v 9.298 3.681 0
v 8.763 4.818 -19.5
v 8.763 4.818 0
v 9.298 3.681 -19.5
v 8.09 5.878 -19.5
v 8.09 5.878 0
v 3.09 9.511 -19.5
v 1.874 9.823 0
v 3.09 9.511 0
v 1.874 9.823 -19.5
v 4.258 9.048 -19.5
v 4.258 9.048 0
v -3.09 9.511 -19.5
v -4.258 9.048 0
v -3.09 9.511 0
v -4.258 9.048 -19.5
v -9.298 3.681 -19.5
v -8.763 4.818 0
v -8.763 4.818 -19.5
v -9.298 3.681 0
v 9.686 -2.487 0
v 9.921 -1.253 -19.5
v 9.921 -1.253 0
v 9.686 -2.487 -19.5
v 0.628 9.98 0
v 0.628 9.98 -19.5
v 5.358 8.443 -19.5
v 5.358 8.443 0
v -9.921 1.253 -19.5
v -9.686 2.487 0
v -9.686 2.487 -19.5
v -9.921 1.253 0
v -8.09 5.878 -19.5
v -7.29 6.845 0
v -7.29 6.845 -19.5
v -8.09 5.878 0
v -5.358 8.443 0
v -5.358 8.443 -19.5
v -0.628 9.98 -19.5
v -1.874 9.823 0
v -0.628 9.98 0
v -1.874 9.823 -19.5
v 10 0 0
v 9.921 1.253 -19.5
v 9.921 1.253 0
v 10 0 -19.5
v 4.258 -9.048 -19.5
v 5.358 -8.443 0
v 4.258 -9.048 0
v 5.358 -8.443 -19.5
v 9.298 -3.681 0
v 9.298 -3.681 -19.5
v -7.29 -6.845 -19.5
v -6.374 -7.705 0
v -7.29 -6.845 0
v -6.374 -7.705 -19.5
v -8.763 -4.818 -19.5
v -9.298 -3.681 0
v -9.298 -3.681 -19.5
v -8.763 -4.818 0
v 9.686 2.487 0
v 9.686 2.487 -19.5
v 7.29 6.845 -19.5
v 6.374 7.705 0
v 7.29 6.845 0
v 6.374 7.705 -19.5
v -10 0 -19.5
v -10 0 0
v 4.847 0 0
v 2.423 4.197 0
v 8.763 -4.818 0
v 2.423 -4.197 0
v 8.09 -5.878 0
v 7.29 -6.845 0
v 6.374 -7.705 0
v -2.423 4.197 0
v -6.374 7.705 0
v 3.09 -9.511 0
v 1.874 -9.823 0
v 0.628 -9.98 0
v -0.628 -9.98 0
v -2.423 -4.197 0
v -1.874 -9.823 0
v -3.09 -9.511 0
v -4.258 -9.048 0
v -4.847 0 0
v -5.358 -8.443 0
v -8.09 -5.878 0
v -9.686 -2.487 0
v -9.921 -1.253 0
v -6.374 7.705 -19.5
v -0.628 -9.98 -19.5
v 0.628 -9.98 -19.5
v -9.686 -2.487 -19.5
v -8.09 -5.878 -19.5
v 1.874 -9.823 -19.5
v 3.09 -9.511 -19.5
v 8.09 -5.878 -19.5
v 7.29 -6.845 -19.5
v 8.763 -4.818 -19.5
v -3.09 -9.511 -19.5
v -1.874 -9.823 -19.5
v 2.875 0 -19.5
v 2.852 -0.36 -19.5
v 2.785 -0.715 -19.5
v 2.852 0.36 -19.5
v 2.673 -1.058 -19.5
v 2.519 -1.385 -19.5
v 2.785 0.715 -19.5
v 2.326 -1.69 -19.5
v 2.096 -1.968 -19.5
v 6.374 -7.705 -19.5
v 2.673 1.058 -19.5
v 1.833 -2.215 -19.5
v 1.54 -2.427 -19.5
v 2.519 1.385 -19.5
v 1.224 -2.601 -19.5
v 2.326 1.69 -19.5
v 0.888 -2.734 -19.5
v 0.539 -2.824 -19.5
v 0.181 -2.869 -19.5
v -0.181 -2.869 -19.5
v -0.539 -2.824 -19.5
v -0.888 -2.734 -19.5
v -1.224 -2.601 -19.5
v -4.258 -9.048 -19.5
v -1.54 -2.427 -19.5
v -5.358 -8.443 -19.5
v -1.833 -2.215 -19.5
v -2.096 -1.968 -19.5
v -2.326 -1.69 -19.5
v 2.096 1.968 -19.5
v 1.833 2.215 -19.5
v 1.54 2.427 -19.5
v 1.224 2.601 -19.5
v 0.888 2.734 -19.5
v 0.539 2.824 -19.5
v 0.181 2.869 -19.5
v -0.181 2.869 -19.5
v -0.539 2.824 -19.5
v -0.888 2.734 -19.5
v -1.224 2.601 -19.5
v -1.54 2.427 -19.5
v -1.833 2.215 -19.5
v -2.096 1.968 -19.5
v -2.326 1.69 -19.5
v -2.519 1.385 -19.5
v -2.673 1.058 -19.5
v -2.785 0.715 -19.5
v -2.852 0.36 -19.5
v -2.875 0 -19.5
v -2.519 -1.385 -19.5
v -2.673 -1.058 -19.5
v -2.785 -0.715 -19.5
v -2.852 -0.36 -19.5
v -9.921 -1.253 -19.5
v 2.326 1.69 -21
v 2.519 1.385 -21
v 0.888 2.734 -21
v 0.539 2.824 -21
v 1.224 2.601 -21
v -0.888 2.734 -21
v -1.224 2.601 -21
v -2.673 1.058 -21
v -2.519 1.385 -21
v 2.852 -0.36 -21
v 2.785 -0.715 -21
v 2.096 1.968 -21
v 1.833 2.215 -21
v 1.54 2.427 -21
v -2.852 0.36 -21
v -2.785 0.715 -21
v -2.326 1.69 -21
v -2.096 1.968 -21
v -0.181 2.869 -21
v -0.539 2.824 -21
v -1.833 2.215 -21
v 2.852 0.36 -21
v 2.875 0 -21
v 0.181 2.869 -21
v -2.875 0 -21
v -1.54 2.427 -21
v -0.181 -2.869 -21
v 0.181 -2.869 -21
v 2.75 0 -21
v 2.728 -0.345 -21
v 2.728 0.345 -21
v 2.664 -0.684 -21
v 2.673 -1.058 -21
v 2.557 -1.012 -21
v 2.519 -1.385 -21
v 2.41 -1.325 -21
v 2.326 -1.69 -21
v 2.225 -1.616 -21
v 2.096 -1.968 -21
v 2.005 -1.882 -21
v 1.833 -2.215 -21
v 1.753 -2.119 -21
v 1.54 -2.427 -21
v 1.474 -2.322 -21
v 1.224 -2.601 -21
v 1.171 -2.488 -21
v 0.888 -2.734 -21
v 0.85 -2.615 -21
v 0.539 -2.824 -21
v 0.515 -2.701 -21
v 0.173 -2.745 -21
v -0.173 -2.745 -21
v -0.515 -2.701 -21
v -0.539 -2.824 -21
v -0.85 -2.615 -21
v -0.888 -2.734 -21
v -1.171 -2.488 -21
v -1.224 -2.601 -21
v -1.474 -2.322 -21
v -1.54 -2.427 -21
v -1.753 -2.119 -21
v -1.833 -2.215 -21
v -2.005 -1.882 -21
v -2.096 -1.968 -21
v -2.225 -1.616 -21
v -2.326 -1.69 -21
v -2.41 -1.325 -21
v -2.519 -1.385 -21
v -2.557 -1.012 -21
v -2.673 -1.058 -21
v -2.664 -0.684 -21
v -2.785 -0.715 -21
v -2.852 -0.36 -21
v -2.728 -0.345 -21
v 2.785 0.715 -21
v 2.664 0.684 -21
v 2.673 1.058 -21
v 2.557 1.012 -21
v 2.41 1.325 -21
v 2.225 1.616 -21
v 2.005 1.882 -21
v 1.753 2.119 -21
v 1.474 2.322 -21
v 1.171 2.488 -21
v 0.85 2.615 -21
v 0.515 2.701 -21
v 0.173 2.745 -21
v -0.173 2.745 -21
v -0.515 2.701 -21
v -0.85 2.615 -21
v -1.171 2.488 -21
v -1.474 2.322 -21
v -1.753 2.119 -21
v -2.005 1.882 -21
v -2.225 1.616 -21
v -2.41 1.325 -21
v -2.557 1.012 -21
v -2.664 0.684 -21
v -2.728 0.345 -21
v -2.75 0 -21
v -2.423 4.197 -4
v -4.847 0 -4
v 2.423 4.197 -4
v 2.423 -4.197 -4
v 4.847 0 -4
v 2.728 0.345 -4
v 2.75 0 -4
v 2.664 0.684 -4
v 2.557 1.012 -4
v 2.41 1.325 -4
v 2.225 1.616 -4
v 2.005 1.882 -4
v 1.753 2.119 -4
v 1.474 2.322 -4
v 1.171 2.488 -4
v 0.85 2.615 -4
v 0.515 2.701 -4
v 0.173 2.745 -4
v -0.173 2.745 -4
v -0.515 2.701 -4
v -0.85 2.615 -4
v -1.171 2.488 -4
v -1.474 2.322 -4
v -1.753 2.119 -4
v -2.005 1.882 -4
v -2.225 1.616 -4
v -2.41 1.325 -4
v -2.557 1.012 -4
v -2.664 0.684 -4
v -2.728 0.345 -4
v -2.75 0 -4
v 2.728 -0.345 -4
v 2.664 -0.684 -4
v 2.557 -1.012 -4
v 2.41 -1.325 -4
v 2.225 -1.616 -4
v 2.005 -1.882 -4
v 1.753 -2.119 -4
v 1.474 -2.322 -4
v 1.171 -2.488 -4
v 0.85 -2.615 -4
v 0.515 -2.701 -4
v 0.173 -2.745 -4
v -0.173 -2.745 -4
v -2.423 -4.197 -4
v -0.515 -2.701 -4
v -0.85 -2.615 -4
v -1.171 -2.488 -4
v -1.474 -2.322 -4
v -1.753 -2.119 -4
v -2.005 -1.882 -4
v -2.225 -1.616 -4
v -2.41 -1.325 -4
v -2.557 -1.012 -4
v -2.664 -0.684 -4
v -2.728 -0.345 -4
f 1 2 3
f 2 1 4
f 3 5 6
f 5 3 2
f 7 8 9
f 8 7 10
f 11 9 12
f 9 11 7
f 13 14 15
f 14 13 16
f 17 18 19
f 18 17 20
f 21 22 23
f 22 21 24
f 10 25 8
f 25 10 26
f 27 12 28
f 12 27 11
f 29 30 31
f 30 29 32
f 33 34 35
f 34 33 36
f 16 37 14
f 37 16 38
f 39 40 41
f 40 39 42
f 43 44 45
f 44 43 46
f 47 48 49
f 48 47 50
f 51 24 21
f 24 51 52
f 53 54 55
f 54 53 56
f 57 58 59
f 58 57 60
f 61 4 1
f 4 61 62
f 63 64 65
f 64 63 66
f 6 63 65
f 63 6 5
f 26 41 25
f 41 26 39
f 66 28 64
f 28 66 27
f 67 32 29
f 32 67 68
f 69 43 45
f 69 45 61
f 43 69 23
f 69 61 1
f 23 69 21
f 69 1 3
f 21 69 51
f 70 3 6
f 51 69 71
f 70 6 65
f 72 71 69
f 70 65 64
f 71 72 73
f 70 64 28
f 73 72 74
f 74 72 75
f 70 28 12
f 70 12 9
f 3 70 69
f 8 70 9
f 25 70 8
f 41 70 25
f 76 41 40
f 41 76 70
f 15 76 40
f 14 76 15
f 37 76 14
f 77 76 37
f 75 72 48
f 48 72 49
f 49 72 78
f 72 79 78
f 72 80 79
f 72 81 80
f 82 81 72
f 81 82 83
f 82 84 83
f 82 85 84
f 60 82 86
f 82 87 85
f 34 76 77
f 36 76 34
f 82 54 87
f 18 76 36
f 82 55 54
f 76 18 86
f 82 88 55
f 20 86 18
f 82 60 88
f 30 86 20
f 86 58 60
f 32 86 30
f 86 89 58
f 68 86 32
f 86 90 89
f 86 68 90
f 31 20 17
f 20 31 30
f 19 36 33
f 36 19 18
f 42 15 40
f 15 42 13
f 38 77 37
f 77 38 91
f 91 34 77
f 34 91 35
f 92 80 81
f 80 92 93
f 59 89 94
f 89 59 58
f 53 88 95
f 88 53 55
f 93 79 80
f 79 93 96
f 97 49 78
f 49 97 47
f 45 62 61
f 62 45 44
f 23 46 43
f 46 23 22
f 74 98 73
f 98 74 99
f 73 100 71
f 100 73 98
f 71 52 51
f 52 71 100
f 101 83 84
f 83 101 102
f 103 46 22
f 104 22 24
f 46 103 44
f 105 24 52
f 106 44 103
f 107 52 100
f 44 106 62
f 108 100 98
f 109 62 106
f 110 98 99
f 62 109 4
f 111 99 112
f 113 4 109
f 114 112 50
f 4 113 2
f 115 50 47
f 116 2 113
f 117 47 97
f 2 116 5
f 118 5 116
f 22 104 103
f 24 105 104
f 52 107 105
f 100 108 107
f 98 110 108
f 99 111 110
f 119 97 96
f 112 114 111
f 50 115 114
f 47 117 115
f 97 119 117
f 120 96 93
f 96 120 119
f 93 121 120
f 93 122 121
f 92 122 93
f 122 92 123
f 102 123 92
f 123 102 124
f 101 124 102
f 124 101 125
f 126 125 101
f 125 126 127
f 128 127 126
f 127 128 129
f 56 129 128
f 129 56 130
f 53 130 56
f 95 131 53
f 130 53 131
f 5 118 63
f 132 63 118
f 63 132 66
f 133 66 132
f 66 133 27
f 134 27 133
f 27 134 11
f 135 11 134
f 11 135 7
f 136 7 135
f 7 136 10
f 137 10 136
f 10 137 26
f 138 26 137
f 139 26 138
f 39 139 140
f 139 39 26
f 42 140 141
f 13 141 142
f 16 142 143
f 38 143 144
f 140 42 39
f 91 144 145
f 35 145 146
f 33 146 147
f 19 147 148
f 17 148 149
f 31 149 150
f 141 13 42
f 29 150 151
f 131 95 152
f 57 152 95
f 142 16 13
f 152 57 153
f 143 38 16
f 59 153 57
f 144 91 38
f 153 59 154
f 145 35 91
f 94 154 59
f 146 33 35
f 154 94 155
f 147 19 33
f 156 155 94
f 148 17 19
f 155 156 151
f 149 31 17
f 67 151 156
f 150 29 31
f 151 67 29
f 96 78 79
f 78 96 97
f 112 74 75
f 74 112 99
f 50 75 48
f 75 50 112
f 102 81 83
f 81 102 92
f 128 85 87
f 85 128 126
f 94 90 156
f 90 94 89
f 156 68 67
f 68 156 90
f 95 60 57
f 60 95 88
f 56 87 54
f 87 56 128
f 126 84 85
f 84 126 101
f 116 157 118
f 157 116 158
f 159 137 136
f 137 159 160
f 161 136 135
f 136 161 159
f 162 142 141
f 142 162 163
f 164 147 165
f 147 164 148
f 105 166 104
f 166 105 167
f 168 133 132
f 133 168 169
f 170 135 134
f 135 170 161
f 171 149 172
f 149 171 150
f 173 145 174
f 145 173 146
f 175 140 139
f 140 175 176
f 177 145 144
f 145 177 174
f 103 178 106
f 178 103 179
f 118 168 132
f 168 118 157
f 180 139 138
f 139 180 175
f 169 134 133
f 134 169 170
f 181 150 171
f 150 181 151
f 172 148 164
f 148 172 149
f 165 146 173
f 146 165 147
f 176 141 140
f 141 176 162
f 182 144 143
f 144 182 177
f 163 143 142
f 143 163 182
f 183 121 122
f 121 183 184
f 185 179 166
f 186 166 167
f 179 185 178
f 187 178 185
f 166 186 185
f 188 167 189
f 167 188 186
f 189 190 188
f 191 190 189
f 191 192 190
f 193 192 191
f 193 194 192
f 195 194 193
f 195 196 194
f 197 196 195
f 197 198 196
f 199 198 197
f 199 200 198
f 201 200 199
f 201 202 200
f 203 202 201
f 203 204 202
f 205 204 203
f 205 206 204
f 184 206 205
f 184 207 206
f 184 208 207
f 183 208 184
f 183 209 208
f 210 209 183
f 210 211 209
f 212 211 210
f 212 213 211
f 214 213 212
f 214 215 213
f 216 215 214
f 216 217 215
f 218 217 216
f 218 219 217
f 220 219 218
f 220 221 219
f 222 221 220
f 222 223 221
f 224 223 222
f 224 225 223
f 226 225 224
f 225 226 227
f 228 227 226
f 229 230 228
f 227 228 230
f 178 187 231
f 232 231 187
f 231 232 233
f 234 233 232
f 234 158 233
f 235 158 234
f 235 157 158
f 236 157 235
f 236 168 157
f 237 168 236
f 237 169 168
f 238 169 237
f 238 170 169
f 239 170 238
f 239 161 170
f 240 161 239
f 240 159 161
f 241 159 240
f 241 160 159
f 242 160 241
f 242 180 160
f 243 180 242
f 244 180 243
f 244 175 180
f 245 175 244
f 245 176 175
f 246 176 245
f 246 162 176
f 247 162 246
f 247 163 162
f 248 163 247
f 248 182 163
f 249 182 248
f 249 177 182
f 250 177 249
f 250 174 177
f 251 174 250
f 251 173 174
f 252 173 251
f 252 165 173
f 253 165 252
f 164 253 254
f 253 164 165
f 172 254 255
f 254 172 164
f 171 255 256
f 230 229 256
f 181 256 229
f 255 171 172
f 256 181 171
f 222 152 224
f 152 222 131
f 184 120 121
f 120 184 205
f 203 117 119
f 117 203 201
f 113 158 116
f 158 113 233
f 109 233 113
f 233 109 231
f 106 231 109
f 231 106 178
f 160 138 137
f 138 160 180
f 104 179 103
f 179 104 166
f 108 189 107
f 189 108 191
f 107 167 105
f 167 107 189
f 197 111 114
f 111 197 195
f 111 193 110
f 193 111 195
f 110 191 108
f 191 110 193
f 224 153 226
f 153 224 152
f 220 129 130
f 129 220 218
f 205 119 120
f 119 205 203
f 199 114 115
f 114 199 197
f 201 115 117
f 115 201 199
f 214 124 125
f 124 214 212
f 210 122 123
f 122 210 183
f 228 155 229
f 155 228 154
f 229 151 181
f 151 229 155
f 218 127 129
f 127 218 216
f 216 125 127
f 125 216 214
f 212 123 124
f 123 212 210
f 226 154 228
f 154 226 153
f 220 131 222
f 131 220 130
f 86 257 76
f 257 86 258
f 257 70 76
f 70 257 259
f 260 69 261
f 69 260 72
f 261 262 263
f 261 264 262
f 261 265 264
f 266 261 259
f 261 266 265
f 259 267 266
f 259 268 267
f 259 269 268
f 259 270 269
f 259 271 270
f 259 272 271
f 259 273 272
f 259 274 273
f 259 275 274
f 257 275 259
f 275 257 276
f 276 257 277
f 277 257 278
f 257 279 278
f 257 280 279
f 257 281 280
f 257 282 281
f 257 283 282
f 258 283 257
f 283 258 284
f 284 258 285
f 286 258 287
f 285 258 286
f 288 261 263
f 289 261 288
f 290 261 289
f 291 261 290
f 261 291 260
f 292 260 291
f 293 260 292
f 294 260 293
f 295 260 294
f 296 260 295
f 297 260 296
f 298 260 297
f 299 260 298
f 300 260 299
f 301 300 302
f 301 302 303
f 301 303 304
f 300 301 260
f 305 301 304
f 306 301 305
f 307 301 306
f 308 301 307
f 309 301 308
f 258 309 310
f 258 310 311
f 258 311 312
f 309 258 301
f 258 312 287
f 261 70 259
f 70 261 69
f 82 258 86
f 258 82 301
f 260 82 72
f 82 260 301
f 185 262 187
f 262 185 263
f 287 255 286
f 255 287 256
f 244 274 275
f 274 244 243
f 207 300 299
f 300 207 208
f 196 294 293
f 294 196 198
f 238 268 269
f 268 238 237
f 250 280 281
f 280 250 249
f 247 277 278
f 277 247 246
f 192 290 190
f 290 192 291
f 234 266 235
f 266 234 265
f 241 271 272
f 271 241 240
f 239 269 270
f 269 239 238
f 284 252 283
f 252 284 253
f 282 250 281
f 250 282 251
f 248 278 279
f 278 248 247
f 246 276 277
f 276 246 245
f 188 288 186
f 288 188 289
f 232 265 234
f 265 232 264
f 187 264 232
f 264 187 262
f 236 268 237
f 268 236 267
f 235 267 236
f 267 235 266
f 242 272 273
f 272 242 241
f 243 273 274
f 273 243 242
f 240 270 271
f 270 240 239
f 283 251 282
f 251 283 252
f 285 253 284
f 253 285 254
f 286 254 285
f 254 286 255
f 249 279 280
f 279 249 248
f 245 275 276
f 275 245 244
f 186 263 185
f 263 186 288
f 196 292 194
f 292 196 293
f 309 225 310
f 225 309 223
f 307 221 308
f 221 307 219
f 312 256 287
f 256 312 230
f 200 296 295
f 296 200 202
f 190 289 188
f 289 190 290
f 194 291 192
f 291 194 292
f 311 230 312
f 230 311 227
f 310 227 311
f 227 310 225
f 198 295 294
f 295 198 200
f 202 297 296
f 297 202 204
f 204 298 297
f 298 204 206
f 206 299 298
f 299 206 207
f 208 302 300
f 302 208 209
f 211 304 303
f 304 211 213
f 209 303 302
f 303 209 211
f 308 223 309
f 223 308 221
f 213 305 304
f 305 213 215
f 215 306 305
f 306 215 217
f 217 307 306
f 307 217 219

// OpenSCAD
$fn = 50;

difference() {
	union() {
		translate(v = [0, 0, -19.5]) {
			cylinder(h = 19.5, r = 10.0);
		}
		#translate(v = [0, 0, -21.0]) {
			cylinder(h = 21, r = 2.875);
		}
	}
	union() {
		translate(v = [0, 0, 0]) {
			rotate(a = [0, 0, 0]) {
				difference() {
					union() {
						translate(v = [0, 0, -4]) {
							linear_extrude(height = 4) {
								polygon(points = [[4.8468, 0.0], [2.4234000000000004, 4.197451927062417], [-2.423399999999999, 4.197451927062417], [-4.8468, 5.935618106107392e-16], [-2.423400000000002, -4.197451927062416], [2.423399999999997, -4.197451927062419]]);
							}
						}
					}
					union();
				}
			}
		}
		#translate(v = [0, 0, -100.0]) {
			cylinder(h = 200, r = 2.75);
		}
	}
}
